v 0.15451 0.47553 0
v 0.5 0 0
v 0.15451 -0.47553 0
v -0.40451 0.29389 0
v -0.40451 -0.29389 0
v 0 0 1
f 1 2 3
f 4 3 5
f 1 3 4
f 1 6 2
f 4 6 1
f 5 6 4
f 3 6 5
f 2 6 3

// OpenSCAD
// Pentagon Pyramid for Stacks of Shapes
// by Slashee the Cow

linear_extrude(1, scale = 0)
circle(d=1, $fn=5);
